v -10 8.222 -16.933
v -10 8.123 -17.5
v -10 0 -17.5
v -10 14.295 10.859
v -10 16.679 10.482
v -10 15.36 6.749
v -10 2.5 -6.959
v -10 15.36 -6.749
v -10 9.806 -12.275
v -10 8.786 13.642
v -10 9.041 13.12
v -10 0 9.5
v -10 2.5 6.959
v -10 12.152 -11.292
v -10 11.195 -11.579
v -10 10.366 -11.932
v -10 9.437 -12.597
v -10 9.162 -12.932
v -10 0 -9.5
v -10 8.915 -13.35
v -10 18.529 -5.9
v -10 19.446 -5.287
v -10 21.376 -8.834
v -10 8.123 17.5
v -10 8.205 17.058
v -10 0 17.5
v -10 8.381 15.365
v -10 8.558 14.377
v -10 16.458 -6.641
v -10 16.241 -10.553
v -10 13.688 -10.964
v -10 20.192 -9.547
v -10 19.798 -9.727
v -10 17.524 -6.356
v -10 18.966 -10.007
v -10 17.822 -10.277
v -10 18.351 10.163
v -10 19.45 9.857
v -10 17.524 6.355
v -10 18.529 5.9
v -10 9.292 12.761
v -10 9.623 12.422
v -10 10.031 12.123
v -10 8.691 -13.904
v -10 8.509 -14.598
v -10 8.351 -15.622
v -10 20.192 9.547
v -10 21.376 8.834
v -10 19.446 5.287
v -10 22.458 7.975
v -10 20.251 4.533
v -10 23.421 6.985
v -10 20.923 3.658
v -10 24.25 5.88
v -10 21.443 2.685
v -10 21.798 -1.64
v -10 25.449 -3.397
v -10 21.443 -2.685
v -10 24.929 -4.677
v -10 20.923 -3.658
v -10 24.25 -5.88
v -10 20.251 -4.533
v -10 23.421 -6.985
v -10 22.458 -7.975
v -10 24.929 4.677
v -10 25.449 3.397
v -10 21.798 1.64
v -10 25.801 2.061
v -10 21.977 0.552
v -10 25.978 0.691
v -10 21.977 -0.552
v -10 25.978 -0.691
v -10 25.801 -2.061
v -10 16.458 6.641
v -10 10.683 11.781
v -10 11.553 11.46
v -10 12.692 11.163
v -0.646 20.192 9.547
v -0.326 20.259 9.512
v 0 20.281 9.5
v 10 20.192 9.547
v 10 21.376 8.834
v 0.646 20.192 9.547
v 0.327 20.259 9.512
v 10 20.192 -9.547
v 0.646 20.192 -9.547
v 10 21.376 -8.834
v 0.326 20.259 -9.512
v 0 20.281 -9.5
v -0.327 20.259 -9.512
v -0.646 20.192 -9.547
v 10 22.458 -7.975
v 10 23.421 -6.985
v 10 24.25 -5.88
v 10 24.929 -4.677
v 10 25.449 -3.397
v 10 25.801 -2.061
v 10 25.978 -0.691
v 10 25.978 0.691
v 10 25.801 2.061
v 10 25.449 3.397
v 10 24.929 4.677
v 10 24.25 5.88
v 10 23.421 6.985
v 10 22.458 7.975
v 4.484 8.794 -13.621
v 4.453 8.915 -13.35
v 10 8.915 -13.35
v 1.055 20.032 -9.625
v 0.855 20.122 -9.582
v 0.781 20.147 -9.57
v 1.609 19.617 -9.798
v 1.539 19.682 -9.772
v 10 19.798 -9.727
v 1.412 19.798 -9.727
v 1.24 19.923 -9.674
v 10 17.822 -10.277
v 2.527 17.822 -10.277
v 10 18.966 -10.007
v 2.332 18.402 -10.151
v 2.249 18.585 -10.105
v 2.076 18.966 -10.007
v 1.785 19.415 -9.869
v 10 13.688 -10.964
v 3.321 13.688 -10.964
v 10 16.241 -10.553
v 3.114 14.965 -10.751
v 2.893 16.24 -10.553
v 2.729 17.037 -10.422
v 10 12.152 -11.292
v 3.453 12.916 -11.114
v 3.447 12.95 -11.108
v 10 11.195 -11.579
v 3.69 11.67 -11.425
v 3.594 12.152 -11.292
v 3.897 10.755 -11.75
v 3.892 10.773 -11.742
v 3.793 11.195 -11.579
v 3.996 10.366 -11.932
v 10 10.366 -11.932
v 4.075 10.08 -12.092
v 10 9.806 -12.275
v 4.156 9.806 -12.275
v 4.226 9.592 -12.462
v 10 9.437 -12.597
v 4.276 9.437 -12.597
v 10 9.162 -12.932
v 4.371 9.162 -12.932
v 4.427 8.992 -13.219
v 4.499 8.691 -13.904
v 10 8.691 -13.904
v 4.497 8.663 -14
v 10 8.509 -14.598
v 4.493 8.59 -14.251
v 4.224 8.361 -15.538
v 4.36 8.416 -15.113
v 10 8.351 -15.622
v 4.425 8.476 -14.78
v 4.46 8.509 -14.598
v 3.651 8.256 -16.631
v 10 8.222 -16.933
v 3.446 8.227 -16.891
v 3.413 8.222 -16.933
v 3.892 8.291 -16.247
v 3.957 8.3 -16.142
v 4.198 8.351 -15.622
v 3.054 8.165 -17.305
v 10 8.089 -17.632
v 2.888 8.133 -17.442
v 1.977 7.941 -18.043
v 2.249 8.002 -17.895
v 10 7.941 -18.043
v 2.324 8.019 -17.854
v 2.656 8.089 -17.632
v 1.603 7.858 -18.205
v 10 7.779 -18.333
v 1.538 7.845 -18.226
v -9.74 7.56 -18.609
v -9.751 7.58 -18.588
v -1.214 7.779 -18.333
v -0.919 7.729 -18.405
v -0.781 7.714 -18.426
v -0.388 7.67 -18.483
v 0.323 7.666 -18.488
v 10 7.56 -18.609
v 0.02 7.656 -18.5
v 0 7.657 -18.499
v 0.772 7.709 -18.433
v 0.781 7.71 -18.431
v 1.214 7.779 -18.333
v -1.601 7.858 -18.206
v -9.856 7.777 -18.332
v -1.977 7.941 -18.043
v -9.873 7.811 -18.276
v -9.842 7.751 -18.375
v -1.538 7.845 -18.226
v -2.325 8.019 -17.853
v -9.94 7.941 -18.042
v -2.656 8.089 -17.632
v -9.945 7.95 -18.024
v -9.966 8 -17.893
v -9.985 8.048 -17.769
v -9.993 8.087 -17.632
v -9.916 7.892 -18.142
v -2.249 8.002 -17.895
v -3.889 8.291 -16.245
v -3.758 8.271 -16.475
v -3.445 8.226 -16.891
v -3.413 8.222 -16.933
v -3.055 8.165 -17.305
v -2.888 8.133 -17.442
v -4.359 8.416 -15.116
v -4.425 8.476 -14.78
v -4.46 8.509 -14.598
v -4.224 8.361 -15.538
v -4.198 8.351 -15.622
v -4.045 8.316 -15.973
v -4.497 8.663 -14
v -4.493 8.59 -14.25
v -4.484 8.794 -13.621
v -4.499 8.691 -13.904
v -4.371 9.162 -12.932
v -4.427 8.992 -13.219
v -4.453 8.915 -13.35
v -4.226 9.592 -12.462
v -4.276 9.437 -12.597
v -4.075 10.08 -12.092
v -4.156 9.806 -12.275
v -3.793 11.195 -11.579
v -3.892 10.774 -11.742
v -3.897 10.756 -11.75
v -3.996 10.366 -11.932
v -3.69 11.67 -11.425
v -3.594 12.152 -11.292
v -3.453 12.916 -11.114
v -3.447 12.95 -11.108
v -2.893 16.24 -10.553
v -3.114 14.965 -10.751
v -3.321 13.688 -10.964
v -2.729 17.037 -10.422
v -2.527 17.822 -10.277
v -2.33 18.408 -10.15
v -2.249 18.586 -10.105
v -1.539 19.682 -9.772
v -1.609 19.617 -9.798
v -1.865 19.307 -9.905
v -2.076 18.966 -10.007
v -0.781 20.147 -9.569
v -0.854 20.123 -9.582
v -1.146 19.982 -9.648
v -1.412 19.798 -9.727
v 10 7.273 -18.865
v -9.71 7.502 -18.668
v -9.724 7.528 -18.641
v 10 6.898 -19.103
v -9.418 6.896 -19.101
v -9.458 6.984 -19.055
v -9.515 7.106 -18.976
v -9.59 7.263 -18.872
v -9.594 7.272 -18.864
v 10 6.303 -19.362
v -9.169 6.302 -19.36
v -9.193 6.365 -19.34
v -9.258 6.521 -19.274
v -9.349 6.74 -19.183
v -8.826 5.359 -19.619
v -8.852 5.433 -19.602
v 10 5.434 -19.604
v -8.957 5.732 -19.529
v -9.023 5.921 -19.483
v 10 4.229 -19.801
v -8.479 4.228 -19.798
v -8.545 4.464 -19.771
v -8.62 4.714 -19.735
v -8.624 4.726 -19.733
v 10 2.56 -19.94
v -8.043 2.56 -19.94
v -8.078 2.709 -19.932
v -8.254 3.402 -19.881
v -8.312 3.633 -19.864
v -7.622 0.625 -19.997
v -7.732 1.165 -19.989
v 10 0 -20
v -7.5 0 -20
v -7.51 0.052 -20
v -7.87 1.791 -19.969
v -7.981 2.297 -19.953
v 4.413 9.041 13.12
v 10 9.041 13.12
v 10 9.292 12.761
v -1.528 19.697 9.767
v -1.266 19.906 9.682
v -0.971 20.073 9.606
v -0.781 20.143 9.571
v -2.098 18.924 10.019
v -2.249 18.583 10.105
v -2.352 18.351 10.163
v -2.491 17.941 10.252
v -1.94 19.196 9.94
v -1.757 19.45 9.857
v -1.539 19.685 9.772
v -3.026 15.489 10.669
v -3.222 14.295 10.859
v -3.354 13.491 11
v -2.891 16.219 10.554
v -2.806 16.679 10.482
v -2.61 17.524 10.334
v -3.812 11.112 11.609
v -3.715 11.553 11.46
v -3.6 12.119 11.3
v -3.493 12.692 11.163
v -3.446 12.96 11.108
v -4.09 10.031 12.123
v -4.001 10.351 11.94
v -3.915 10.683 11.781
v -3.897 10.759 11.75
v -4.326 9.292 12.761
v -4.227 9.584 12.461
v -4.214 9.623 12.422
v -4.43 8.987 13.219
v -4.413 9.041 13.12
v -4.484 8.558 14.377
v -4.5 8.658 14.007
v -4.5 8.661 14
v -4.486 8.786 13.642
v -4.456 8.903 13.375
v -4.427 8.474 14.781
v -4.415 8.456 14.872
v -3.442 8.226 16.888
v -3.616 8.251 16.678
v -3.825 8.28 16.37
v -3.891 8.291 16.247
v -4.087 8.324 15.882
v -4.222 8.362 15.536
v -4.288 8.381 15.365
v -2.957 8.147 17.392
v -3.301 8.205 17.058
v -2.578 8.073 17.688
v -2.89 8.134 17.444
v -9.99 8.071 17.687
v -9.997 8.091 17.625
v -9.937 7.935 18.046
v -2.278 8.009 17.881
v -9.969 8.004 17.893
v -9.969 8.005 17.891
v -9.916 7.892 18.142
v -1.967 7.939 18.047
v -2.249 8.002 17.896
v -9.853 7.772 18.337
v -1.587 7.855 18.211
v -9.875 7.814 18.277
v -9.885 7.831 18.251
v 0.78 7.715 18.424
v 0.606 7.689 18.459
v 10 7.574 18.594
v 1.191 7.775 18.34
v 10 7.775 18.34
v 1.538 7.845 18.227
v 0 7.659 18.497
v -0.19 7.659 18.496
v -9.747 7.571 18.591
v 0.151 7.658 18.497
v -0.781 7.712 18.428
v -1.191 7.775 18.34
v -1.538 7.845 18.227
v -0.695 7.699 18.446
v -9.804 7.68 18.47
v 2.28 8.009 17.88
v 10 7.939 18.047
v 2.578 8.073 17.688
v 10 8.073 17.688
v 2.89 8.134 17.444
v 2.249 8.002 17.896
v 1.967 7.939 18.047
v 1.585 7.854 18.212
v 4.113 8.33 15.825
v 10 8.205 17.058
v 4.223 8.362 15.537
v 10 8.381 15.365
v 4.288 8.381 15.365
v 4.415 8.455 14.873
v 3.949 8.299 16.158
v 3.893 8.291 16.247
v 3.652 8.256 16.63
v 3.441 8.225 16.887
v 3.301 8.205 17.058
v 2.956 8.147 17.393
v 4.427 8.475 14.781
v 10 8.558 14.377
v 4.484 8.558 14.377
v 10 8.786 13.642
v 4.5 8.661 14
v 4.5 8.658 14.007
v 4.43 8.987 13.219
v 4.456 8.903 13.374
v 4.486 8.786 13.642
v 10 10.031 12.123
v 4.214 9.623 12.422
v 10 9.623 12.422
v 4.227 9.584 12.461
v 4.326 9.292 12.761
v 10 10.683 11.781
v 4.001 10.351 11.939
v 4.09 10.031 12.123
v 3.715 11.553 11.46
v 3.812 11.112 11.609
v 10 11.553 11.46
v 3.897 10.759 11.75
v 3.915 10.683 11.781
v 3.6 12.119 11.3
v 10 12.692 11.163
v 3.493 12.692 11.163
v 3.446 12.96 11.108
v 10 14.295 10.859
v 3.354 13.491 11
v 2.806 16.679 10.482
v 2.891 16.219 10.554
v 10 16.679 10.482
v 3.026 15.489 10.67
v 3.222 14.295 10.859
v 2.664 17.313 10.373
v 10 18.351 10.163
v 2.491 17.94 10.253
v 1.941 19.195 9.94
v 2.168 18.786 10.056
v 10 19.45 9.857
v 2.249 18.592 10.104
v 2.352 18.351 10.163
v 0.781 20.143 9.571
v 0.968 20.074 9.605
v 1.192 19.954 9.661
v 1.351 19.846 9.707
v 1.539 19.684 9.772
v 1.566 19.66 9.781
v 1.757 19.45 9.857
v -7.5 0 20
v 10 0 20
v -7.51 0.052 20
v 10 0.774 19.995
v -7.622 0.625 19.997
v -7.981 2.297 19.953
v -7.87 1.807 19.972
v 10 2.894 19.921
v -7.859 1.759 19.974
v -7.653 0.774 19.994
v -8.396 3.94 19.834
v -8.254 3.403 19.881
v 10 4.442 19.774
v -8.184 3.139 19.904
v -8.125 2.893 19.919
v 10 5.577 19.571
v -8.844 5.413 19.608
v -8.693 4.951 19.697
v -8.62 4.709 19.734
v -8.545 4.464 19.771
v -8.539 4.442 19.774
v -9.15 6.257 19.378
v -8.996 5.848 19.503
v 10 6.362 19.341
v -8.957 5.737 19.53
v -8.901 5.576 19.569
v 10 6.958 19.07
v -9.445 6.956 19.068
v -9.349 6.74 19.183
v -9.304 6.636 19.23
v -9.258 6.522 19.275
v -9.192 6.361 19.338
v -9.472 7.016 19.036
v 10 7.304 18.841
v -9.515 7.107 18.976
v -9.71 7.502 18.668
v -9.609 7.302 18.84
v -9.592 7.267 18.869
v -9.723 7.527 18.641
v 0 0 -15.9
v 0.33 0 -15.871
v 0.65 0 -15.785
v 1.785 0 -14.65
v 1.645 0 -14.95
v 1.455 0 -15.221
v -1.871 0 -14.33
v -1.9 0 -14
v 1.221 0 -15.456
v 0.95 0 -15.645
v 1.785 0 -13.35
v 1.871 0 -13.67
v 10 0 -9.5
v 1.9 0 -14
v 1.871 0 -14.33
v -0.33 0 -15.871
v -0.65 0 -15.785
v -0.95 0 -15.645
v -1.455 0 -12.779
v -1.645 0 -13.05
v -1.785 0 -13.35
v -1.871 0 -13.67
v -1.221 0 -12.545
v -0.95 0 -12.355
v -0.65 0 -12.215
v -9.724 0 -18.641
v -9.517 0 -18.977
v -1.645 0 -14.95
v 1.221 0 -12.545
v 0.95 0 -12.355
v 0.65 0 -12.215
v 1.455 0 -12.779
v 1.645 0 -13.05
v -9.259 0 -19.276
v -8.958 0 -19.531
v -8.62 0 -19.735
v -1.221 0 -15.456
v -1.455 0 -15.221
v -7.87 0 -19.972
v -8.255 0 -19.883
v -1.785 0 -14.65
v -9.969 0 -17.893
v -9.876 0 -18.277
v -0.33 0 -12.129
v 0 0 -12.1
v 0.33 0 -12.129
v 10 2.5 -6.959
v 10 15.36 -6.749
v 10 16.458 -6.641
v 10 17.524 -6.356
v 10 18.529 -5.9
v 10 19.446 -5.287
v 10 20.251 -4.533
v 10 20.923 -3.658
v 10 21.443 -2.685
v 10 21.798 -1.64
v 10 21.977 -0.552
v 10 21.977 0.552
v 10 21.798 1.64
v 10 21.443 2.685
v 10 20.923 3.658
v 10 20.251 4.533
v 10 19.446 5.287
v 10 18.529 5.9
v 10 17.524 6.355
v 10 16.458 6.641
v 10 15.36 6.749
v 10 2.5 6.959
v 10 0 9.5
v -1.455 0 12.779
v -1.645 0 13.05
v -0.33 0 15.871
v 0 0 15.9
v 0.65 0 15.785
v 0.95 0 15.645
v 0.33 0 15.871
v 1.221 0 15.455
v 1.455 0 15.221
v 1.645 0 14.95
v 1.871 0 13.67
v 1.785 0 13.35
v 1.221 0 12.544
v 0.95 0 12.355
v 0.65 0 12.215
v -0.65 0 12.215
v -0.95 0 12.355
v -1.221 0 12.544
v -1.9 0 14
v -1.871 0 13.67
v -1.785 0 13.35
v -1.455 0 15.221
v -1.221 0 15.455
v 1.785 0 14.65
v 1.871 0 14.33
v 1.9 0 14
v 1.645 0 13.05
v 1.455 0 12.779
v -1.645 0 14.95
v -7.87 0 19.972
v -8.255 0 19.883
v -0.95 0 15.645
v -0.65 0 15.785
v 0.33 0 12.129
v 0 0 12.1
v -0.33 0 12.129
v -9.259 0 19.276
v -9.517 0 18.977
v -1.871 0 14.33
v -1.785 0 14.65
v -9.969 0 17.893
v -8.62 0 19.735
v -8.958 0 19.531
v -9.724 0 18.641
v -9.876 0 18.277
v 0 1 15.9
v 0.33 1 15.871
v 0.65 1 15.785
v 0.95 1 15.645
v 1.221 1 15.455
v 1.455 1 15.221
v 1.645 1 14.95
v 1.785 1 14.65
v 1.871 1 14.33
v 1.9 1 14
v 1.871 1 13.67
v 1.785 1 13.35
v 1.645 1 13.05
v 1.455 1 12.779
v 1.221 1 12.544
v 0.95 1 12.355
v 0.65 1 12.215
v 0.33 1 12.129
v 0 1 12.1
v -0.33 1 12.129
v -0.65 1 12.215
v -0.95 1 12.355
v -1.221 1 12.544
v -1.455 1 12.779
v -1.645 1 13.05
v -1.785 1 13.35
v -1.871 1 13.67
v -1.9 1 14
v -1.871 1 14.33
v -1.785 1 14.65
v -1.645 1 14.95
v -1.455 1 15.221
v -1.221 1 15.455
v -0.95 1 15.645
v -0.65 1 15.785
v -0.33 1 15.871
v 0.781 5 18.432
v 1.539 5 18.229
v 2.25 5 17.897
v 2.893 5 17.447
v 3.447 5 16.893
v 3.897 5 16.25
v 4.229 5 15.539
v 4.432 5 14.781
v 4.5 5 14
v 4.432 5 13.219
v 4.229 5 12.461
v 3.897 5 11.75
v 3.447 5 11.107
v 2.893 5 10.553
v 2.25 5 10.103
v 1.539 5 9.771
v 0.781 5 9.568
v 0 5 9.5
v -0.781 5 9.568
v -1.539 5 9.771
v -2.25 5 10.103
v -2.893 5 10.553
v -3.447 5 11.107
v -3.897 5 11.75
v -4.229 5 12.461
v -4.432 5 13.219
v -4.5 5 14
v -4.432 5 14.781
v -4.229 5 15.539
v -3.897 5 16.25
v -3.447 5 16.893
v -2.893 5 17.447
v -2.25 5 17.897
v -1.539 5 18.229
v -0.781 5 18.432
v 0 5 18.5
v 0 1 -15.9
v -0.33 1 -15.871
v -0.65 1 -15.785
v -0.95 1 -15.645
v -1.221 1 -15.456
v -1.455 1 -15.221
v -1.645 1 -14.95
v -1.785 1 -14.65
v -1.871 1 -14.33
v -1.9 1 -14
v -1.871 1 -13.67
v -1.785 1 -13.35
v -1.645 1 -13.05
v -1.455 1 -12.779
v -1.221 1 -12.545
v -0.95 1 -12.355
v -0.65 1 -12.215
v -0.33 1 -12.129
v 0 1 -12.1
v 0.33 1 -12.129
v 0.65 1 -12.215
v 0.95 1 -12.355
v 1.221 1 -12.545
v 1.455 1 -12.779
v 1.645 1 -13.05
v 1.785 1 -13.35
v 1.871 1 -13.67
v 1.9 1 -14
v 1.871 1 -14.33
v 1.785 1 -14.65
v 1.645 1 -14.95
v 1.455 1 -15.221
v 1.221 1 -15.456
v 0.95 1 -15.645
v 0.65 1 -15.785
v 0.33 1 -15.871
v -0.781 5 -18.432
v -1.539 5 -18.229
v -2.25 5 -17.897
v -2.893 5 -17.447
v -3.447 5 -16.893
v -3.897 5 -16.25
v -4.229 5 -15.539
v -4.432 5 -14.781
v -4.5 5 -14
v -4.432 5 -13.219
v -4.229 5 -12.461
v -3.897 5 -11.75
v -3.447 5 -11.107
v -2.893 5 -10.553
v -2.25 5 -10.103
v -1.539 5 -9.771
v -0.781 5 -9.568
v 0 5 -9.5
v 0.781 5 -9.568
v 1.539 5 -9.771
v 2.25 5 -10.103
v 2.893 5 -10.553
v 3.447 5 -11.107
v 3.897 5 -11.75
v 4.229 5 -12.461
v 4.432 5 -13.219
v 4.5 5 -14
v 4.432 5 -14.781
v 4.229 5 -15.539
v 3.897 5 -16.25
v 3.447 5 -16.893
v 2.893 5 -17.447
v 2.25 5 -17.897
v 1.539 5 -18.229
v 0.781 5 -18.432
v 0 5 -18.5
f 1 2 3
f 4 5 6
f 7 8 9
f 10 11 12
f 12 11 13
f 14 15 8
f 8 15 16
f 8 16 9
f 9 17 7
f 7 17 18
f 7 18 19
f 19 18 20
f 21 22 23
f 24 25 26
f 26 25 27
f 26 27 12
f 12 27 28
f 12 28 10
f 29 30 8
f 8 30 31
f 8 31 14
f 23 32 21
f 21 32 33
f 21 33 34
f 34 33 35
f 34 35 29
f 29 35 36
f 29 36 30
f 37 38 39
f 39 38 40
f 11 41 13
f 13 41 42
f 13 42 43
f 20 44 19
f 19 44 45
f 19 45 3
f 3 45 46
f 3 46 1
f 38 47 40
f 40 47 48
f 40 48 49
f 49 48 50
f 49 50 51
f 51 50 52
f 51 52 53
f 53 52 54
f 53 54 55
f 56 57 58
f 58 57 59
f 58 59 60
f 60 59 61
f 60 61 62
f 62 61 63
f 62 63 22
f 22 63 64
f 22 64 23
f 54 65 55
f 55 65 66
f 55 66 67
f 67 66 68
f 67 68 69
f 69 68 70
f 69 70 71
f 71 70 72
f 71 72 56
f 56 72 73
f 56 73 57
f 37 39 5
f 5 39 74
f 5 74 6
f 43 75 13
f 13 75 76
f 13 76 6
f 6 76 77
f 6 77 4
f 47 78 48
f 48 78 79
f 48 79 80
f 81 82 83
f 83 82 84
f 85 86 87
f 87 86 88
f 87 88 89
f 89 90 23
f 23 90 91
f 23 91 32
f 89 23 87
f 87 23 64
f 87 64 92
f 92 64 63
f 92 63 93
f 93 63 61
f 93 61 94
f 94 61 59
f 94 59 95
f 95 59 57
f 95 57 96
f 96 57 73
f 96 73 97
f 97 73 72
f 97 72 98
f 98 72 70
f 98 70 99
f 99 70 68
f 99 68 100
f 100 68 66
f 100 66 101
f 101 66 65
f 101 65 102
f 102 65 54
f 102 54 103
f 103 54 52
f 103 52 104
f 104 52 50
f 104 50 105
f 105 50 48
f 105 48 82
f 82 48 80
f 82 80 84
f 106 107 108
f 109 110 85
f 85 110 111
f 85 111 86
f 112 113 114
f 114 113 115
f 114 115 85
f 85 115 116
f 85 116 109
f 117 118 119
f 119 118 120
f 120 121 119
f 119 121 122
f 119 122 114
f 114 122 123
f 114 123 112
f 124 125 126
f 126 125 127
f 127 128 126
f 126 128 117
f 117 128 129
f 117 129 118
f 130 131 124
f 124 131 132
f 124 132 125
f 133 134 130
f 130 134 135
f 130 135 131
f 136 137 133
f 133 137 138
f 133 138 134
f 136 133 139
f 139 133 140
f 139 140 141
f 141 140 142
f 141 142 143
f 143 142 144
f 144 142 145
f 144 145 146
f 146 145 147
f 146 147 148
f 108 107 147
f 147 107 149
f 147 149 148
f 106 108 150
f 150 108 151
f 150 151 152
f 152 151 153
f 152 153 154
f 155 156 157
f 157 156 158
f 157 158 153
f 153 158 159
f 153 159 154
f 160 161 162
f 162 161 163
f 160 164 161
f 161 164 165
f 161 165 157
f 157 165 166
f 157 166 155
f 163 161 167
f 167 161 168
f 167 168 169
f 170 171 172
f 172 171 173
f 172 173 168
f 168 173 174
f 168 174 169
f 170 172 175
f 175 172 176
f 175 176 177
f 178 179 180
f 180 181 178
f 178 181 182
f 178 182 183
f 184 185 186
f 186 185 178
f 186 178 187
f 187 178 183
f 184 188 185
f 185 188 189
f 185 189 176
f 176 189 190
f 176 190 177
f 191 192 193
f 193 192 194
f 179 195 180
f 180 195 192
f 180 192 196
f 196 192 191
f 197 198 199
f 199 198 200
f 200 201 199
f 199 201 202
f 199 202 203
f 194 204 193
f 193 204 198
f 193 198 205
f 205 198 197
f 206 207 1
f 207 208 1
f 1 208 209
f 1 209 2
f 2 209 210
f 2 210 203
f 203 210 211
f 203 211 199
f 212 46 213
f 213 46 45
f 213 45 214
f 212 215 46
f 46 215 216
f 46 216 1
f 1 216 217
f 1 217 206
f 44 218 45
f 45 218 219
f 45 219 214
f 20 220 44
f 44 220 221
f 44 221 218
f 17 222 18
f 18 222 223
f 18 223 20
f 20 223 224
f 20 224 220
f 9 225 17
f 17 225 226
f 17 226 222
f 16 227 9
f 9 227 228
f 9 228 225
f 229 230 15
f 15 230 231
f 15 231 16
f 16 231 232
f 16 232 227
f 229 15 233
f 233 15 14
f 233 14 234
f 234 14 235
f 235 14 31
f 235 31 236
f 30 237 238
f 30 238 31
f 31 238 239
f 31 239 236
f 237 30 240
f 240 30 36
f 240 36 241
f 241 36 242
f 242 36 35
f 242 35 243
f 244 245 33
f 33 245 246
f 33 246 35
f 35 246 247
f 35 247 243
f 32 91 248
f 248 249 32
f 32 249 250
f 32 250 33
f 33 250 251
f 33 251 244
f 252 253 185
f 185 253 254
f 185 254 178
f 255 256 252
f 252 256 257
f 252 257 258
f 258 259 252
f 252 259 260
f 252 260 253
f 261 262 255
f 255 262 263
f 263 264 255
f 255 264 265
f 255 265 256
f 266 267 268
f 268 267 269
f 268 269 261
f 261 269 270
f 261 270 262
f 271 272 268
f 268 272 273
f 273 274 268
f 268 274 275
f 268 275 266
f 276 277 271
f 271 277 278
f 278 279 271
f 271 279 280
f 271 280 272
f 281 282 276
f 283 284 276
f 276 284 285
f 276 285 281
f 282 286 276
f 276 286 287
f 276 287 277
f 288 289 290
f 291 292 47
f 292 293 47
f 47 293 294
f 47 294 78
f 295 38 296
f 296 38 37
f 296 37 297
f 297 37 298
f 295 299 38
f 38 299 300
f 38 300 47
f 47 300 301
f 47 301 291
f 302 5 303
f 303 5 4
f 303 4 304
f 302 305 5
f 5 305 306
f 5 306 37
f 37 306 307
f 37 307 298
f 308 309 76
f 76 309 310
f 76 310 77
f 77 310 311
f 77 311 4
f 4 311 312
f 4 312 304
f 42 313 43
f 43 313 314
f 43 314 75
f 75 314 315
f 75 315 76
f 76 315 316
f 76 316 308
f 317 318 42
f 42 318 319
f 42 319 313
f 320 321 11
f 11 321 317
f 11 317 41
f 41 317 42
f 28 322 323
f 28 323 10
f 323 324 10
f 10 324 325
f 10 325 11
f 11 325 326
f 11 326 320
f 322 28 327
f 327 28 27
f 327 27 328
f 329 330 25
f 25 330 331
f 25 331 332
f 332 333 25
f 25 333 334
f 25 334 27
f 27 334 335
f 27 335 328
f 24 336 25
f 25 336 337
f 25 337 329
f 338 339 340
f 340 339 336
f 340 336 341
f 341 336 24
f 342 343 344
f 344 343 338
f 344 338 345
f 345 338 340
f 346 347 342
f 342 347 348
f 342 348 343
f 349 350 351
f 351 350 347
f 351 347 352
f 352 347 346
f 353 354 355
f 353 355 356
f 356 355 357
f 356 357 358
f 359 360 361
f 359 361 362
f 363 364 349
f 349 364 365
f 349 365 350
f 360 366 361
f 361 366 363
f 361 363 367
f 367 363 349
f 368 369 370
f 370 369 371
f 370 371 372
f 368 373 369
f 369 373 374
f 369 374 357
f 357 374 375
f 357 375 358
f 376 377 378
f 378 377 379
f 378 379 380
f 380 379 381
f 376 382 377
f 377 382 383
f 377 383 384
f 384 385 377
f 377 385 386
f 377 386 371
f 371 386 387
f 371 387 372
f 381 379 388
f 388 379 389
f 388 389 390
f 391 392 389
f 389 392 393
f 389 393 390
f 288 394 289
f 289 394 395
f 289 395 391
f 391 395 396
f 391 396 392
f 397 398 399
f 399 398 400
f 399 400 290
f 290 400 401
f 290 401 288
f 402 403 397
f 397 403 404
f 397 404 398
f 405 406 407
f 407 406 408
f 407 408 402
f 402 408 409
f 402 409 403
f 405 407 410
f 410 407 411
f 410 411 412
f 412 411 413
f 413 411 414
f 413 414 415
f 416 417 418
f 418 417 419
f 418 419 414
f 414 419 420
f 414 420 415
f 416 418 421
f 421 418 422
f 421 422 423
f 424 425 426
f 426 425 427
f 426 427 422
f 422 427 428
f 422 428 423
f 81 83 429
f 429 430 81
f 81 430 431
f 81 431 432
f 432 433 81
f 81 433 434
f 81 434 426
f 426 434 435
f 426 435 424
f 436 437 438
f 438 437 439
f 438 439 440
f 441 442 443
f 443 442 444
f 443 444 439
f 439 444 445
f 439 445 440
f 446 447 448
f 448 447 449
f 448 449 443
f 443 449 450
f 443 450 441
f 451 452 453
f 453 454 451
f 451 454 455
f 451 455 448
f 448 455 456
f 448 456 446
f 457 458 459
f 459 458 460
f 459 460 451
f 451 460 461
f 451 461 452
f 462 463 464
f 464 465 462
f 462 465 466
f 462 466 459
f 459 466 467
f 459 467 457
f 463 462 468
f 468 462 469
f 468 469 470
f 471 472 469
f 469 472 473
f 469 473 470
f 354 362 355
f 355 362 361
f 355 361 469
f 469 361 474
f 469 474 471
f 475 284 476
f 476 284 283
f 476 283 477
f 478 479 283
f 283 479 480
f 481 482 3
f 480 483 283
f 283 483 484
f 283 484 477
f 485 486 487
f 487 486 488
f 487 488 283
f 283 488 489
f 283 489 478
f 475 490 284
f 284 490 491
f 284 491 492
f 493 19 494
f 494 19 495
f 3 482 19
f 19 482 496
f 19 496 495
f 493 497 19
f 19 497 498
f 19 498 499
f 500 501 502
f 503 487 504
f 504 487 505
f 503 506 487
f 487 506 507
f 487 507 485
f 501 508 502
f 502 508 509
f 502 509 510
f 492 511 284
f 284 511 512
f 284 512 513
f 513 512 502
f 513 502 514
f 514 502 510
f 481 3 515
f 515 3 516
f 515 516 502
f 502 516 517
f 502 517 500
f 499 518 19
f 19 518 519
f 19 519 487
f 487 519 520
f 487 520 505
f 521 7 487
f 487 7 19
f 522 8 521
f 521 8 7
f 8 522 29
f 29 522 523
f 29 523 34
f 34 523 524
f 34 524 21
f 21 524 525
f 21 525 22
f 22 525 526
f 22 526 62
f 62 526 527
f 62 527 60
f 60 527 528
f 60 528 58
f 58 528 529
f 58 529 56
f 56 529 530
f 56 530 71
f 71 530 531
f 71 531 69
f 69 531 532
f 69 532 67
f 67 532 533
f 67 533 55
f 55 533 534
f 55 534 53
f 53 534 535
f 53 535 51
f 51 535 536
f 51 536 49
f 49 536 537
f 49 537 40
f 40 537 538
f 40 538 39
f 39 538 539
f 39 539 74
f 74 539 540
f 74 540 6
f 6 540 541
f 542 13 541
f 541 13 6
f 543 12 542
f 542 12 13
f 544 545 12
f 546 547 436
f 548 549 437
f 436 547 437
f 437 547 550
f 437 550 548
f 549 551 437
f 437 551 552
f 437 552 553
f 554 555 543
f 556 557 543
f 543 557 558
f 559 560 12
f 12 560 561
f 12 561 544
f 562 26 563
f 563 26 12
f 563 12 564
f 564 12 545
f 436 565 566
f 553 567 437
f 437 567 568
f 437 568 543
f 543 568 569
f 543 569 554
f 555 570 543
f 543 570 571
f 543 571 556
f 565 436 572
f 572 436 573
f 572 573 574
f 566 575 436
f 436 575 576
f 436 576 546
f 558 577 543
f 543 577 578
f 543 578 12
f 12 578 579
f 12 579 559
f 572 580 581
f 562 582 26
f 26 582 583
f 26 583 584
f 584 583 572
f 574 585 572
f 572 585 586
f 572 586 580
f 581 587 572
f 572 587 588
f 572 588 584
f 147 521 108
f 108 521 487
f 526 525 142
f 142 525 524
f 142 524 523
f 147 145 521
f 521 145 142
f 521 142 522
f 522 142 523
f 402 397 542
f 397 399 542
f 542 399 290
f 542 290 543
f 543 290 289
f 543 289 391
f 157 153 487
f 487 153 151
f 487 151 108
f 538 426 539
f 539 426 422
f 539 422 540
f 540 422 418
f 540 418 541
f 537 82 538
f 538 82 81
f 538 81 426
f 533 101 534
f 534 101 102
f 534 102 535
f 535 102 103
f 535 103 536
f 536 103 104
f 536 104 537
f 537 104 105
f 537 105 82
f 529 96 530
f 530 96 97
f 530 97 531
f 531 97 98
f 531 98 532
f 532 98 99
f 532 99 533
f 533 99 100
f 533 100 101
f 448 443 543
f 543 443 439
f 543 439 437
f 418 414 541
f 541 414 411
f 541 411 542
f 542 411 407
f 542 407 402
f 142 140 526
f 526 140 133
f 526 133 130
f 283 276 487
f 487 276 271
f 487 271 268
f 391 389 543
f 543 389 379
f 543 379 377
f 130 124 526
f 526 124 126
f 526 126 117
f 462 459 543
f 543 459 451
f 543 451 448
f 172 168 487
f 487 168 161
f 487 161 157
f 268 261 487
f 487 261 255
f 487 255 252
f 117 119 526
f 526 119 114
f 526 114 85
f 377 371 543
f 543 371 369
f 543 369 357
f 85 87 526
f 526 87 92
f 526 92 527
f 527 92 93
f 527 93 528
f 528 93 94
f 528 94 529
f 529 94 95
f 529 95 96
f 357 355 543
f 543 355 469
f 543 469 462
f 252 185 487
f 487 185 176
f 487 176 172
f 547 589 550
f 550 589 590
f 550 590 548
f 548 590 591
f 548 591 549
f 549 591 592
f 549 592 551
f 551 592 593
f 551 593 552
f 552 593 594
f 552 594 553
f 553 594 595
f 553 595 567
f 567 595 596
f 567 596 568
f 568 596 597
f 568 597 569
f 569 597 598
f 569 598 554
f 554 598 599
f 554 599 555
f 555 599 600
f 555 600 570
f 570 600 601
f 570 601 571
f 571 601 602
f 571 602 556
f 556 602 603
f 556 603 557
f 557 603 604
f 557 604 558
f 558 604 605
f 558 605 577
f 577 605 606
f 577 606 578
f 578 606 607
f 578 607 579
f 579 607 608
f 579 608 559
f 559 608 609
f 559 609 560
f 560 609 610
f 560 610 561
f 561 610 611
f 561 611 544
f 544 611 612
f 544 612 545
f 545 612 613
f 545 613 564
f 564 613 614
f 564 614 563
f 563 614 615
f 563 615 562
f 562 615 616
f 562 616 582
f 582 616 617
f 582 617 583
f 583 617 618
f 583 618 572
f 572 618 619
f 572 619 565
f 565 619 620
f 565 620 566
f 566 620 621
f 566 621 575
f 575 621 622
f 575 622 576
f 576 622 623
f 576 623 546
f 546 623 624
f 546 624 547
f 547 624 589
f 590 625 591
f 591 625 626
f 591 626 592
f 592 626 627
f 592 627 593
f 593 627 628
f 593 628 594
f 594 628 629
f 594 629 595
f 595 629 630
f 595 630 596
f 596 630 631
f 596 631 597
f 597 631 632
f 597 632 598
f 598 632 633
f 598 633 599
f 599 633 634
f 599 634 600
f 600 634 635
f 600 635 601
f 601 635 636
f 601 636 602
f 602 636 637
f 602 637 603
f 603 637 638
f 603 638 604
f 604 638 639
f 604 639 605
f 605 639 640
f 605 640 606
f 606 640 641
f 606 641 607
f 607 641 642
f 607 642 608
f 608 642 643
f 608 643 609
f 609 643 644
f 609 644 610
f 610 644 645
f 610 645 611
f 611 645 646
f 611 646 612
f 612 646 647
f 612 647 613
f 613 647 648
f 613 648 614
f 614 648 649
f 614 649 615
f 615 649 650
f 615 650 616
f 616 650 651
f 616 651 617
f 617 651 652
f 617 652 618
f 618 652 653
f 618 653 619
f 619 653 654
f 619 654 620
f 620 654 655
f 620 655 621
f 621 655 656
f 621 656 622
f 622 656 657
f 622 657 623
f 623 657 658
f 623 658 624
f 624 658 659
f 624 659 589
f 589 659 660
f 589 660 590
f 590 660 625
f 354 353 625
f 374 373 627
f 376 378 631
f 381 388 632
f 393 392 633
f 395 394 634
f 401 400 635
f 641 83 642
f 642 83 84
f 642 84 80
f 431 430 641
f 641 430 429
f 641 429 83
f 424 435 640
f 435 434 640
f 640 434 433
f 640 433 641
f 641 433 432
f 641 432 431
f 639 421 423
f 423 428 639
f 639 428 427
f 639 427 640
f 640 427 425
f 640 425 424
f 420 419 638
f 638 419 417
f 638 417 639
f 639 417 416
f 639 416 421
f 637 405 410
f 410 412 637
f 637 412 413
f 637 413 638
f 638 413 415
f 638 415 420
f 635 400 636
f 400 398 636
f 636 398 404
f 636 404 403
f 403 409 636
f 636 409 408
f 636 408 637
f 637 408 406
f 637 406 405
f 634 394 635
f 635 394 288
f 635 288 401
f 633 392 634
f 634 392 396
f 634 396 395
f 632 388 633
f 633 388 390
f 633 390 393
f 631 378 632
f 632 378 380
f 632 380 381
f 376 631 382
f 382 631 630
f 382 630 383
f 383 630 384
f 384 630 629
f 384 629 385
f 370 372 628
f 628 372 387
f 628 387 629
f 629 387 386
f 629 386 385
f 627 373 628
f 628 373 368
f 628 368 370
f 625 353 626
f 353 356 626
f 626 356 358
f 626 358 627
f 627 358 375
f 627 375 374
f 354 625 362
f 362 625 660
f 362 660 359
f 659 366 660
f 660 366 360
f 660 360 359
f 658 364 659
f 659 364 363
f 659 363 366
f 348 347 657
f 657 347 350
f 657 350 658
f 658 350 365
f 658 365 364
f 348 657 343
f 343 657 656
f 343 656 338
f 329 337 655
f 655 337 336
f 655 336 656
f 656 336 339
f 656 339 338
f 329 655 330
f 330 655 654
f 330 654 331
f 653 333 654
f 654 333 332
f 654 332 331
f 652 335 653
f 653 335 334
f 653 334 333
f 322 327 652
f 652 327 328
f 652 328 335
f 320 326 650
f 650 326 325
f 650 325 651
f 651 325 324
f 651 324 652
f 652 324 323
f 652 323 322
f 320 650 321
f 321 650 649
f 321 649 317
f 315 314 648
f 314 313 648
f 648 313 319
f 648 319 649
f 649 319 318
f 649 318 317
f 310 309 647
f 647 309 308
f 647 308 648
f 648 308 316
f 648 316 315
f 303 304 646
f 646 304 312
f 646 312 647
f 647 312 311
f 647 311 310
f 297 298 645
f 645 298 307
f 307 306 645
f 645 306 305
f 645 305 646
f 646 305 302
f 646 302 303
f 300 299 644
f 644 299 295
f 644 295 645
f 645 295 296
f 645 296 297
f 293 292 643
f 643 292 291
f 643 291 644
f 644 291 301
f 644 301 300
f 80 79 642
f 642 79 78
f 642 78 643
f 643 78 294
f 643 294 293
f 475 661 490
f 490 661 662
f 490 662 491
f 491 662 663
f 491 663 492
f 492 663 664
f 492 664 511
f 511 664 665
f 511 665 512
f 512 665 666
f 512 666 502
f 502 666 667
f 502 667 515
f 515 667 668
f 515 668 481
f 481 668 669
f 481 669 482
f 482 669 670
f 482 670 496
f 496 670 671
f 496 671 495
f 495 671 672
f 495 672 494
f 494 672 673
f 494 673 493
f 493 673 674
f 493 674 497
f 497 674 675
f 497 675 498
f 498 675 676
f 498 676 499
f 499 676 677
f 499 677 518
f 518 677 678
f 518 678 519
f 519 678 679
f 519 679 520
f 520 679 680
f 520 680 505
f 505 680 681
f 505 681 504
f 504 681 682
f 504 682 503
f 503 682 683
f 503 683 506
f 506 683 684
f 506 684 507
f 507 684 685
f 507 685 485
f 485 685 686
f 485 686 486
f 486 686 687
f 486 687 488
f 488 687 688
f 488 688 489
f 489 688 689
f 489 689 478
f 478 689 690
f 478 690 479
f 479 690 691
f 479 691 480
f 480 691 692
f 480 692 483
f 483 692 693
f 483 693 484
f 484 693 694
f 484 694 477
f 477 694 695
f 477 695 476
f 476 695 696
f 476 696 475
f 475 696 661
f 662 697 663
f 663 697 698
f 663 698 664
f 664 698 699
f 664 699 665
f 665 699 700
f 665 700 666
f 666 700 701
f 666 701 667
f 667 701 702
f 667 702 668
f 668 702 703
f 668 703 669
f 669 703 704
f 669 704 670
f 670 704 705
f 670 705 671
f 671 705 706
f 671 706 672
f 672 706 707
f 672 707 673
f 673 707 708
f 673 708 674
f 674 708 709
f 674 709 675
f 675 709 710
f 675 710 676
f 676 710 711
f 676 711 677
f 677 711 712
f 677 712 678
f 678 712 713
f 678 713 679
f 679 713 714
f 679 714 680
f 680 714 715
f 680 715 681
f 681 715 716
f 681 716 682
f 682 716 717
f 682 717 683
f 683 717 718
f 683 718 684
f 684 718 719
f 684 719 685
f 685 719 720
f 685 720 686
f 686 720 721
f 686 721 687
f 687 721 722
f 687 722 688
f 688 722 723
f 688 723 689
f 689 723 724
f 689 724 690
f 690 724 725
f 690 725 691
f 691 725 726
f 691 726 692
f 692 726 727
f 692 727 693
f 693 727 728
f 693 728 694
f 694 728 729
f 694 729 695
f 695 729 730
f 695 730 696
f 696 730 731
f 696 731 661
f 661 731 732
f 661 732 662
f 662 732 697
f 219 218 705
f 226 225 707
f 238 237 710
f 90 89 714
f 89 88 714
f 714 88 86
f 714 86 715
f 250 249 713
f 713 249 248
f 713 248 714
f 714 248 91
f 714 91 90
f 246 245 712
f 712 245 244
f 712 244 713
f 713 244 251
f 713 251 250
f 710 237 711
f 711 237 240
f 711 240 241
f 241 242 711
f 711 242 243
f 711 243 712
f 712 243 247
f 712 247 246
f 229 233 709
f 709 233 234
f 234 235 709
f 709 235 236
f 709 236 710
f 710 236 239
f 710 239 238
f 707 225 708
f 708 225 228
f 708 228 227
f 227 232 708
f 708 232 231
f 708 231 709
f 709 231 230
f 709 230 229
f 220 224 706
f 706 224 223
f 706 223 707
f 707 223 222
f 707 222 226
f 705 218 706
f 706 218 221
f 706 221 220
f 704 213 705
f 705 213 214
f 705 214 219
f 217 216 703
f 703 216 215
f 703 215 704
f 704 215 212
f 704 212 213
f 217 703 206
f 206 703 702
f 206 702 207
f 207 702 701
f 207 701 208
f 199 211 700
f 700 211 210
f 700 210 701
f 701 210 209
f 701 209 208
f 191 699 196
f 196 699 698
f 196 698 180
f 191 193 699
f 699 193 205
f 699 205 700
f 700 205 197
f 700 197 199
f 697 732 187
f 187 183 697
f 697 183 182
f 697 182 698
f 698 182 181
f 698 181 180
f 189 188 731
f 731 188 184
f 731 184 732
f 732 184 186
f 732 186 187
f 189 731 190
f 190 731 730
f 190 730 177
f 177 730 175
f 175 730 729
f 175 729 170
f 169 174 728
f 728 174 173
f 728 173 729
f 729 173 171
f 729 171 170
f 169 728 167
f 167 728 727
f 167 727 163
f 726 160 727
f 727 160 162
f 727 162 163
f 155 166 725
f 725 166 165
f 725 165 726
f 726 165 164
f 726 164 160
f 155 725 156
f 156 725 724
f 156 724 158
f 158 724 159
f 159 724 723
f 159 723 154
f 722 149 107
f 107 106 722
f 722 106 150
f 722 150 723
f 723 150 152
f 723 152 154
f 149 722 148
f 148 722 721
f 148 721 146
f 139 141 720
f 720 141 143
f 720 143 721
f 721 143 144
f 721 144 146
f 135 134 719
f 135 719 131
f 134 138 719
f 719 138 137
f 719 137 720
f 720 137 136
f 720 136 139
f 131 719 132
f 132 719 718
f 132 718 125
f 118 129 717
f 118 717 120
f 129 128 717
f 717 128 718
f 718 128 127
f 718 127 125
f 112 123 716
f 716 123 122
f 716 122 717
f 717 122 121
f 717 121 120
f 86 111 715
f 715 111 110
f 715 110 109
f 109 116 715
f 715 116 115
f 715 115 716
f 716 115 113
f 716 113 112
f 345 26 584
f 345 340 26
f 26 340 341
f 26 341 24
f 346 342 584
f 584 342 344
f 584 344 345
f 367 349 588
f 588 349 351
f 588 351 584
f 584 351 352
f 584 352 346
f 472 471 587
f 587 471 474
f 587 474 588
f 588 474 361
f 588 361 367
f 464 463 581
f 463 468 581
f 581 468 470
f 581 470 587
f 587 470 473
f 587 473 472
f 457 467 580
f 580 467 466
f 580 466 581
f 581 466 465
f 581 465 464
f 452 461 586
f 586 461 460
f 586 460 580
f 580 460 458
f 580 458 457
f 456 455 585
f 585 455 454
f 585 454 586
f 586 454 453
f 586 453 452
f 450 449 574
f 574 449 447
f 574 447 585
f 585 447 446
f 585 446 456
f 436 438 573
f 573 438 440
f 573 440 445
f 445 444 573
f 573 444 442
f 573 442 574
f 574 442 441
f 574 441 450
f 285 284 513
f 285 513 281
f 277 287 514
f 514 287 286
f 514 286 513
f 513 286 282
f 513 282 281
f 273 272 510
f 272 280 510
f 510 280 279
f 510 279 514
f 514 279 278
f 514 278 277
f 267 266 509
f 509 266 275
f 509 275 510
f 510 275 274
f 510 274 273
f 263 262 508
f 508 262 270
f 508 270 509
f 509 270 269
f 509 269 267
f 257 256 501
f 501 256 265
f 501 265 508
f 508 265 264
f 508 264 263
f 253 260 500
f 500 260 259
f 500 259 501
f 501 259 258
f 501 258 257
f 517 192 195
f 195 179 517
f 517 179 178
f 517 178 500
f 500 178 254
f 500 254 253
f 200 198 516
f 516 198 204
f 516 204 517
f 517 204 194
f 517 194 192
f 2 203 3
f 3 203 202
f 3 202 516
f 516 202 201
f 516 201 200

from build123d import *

# Parameters (mm, degrees)
BOSS_EXTRUDE1_DEPTH      = 10
BOSS_EXTRUDE1_DEPTH_BACK = 10
CUT_EXTRUDE1_DEPTH       = 35.292856562


with BuildPart() as part:
    # Sketch1 → Boss-Extrude1 (new, two sides: drawn at the far end of the back side and taken through both)
    with BuildSketch(Plane(origin=(0, 0, 0), x_dir=(0, 0, -1), z_dir=(1, 0, 0)).offset(-BOSS_EXTRUDE1_DEPTH_BACK)):
        with BuildLine():
            Line((-20, 0), (-9.5, 0))
            Line((-9.5, 0), (-6.959169452, 2.499666551))
            Line((-6.959169452, 2.499666551), (-6.749099688, 15.36024248))
            ThreePointArc((-6.749099688, 15.36024248), (0, 22), (6.749099688, 15.36024248))
            Line((6.749099688, 15.36024248), (6.959169452, 2.499666551))
            Line((6.959169452, 2.499666551), (9.5, 0))
            Line((9.5, 0), (20, 0))
            add(Edge.make_bspline(
                [(9.546567927, 20.192220232), (10.857885065, 17.659233529), (10.505968038, 9.891536863), (17.534240818, 7.323509593), (20, 9.812519834), (20, 0)],
                knots=[0, 0, 0, 0, 0.359294203, 0.459294203, 1, 1, 1, 1], degree=3))
            ThreePointArc((9.546567927, 20.192220232), (0, 26), (-9.546567927, 20.192220232))
            add(Edge.make_bspline(
                [(-9.546567927, 20.192220232), (-10.857885065, 17.659233529), (-10.505968038, 9.891536863), (-17.534240818, 7.323509593), (-20, 9.812519834), (-20, 0)],
                knots=[0, 0, 0, 0, 0.359294203, 0.459294203, 1, 1, 1, 1], degree=3))
        make_face()
    extrude(amount=BOSS_EXTRUDE1_DEPTH + BOSS_EXTRUDE1_DEPTH_BACK)

    # Sketch4 → Cut-Revolve1 (revolve, cut)
    with BuildSketch(Plane(origin=(0, 0, 0), x_dir=(0, 0, -1), z_dir=(1, 0, 0))):
        Polygon((-12.1, 1), (-9.5, 5), (-9.5, 20.281152949), (-14, 20.281152949), (-14, 0), (-12.1, 0), align=None)
    cut_revolve1 = revolve(axis=Axis((0, 20.281152949, 14), (0, -1, 0)), mode=Mode.SUBTRACT)

    # Mirror1: Cut-Revolve1 across plane
    add(cut_revolve1.mirror(Plane.XY), mode=Mode.SUBTRACT)

    # Sketch5 → Cut-Extrude1 (cut, through all)
    with BuildSketch(Plane.XZ):
        with BuildLine():
            Line((-7.5, 20), (-10, 20))
            Line((-10, 20), (-10, 17.5))
            ThreePointArc((-10, 17.5), (-9.267766953, 19.267766953), (-7.5, 20))
        make_face()
        with BuildLine():
            Line((-10, -20), (-10, -17.5))
            ThreePointArc((-10, -17.5), (-9.267766953, -19.267766953), (-7.5, -20))
            Line((-7.5, -20), (-10, -20))
        make_face()
    extrude(amount=-CUT_EXTRUDE1_DEPTH, mode=Mode.SUBTRACT)


solid = part.part
